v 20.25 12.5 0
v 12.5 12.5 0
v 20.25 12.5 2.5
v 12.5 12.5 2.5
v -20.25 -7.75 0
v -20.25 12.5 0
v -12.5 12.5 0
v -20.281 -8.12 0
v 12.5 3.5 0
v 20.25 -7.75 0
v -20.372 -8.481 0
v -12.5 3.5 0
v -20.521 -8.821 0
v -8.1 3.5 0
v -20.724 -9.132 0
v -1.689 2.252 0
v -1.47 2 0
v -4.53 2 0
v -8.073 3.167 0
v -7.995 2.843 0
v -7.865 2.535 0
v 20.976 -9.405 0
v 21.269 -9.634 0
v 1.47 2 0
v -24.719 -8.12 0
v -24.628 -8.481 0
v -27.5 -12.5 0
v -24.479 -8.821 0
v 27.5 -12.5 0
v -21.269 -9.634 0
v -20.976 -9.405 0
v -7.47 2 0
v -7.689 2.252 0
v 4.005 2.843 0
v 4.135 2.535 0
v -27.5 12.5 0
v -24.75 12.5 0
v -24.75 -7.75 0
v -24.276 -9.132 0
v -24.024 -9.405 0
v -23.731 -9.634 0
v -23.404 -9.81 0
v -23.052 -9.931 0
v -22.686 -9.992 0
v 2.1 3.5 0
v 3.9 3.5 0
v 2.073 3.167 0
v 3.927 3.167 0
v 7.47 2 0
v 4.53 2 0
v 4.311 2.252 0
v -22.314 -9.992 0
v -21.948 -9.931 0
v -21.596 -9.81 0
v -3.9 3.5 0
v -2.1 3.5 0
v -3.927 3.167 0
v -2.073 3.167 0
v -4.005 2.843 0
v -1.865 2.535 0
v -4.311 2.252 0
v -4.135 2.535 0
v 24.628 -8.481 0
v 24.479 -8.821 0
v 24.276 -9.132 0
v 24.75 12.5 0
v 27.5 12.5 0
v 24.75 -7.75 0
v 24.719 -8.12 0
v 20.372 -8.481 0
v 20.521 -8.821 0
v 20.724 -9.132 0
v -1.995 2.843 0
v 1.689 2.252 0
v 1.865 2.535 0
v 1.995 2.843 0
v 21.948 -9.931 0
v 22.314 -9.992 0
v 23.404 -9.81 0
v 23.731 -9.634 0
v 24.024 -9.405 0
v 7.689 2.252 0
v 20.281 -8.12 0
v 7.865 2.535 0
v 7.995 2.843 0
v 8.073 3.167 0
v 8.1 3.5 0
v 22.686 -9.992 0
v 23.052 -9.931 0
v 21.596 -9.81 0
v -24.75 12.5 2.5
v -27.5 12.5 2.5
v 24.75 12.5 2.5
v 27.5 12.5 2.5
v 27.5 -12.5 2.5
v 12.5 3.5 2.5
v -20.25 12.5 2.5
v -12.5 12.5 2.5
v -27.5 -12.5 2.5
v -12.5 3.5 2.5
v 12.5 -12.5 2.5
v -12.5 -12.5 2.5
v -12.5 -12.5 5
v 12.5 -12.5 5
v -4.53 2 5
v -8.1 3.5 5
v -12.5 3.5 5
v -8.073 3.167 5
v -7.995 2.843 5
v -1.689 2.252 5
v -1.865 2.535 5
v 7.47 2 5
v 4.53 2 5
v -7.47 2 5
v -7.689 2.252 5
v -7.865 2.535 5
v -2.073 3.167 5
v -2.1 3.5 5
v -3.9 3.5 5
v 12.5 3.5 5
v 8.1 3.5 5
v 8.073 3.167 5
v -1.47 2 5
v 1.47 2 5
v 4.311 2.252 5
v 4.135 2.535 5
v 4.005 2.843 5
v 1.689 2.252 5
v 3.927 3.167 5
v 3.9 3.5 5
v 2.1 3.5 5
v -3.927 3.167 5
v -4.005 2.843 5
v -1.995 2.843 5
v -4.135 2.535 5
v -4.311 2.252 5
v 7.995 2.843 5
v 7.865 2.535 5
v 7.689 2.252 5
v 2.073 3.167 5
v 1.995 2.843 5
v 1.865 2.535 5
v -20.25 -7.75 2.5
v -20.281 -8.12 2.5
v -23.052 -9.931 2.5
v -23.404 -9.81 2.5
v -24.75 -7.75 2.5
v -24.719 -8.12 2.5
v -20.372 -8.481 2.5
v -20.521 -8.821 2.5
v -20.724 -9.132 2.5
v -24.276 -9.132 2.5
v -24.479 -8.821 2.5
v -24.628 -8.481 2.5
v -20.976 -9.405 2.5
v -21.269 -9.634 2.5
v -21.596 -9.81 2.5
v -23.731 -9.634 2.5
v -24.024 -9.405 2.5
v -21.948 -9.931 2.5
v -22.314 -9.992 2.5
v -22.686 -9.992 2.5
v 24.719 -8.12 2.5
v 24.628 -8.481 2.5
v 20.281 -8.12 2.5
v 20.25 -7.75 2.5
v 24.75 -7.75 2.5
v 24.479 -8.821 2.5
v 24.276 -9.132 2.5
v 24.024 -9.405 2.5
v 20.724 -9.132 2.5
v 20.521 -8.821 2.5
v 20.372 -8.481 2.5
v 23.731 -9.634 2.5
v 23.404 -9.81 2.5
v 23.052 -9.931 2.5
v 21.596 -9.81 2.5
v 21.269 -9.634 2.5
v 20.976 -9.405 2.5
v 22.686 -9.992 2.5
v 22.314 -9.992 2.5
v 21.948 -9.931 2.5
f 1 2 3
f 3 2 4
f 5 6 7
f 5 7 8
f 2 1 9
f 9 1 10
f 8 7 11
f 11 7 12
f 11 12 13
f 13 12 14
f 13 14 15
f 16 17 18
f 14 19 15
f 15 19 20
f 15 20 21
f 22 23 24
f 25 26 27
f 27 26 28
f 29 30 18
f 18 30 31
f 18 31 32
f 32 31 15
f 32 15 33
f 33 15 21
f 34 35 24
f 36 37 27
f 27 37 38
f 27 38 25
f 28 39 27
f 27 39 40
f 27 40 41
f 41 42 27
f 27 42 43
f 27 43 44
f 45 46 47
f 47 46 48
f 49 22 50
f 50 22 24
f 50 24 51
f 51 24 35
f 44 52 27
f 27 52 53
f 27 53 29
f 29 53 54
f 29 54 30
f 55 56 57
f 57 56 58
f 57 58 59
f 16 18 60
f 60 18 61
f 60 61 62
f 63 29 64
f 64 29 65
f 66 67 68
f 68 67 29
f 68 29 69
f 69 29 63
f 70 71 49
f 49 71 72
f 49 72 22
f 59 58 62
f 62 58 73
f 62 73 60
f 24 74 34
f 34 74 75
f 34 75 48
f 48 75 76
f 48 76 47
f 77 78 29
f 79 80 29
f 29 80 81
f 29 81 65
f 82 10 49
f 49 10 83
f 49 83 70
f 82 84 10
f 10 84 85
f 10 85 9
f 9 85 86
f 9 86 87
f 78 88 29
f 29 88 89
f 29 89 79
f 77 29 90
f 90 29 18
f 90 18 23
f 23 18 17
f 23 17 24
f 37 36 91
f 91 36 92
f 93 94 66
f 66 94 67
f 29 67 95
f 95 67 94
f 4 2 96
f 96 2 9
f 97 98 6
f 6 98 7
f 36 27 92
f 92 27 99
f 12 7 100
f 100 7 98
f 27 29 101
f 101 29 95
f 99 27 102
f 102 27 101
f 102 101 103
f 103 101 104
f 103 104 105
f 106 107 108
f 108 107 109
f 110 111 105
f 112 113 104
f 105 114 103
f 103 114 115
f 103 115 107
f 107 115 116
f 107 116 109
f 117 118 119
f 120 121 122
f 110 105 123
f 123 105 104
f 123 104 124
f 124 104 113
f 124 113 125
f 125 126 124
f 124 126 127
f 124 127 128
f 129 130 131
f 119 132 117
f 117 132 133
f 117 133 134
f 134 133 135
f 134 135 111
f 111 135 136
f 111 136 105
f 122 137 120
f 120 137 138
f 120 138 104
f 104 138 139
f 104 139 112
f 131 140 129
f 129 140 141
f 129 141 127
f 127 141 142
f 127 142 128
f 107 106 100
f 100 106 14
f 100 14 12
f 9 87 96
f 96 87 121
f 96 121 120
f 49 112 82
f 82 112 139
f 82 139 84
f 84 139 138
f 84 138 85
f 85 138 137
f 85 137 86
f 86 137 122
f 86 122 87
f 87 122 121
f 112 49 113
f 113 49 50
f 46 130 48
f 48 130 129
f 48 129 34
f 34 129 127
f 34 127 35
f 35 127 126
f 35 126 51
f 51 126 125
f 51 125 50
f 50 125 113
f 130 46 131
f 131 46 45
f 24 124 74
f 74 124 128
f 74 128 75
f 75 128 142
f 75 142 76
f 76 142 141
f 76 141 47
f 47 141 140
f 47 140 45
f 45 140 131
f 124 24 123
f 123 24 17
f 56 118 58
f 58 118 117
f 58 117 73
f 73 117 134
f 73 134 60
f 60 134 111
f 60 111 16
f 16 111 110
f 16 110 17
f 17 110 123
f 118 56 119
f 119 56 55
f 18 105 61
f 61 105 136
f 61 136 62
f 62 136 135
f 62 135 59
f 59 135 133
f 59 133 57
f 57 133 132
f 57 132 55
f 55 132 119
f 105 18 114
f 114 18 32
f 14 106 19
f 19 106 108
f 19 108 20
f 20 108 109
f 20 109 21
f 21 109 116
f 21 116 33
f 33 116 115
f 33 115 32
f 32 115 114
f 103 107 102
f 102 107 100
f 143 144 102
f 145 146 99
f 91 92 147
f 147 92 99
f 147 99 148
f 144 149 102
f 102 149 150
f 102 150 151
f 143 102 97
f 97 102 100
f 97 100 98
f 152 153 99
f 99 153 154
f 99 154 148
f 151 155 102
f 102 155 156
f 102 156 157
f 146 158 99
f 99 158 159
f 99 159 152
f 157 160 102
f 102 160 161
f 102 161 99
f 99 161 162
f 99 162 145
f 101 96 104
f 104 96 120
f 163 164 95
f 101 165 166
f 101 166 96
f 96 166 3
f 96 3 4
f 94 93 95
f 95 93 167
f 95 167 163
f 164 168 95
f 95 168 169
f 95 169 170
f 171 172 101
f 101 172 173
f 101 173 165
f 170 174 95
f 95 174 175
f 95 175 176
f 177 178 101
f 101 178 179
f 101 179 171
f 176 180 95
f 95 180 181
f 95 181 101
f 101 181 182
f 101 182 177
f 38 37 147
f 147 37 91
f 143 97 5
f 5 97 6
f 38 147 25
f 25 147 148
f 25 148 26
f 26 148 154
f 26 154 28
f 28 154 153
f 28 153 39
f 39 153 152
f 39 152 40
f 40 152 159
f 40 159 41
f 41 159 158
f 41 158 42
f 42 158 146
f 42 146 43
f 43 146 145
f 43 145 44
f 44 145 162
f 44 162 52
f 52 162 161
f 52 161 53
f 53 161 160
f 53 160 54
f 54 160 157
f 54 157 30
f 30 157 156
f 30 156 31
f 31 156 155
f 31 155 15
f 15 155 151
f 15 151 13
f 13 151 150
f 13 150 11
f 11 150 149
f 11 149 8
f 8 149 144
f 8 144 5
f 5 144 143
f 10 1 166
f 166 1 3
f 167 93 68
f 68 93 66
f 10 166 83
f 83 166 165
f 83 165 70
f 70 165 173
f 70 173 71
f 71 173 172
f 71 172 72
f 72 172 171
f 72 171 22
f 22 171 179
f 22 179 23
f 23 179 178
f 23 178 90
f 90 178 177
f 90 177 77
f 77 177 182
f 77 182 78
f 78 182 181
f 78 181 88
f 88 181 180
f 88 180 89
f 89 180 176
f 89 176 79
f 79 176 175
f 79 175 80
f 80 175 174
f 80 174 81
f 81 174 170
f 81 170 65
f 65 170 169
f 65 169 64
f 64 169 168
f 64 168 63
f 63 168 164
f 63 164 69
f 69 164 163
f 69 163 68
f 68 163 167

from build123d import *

# Parameters (mm, degrees)
SKICA1_W                 = 55
SKICA1_H                 = 25
P_IDAT_VYSUNUT_M1_DEPTH  = 5
ODEBRAT_VYSUNUT_M1_DEPTH = 10
SKICA3_W                 = 15
SKICA3_H                 = 25
ODEBRAT_VYSUNUT_M2_DEPTH = 2.5
M4_D_RA_S_V_L_4_DEPTH    = 2.5


# Read off the part's stored shape, not the designer's step: M4 díra s vůlí4
with BuildPart() as part:
    # Skica1 → Přidat vysunutím1 (new body)
    with BuildSketch(Plane.XY):
        Rectangle(SKICA1_W, SKICA1_H)
    extrude(amount=P_IDAT_VYSUNUT_M1_DEPTH)

    # Skica2 → Odebrat vysunutím1 (cut)
    with BuildSketch(Plane.XY.offset(5)):
        with BuildLine():
            Line((-12.5, 3.5), (-8.1, 3.5))
            ThreePointArc((-8.1, 3.5), (-7.936021317, 2.6864759), (-7.469693846, 2))
            Line((-7.469693846, 2), (-4.530306154, 2))
            ThreePointArc((-4.530306154, 2), (-4.063978683, 2.6864759), (-3.9, 3.5))
            Line((-3.9, 3.5), (-2.1, 3.5))
            ThreePointArc((-2.1, 3.5), (-1.936021317, 2.6864759), (-1.469693846, 2))
            Line((-1.469693846, 2), (1.469693846, 2))
            ThreePointArc((1.469693846, 2), (1.936021317, 2.6864759), (2.1, 3.5))
            Line((2.1, 3.5), (3.9, 3.5))
            ThreePointArc((3.9, 3.5), (4.063978683, 2.6864759), (4.530306154, 2))
            Line((4.530306154, 2), (7.469693846, 2))
            ThreePointArc((7.469693846, 2), (7.936021317, 2.6864759), (8.1, 3.5))
            Line((8.1, 3.5), (12.5, 3.5))
            Line((12.5, 3.5), (12.5, 12.5))
            Line((12.5, 12.5), (-12.5, 12.5))
            Line((-12.5, 12.5), (-12.5, 3.5))
        make_face()
    extrude(amount=-ODEBRAT_VYSUNUT_M1_DEPTH, mode=Mode.SUBTRACT)

    # Skica3 → Odebrat vysunutím2 (cut)
    with BuildSketch(Plane.XY.offset(5)):
        with Locations((-20, 0)):
            Rectangle(SKICA3_W, SKICA3_H)
        with Locations((20, 0)):
            Rectangle(SKICA3_W, SKICA3_H)
    extrude(amount=-ODEBRAT_VYSUNUT_M2_DEPTH, mode=Mode.SUBTRACT)

    # M4 díra s vůlí4 outline → M4 díra s vůlí4 (cut)
    with BuildSketch(Plane.XY):
        with BuildLine():
            Line((-20.25, 12.5), (-24.75, 12.5))
            Line((-24.75, 12.5), (-24.75, -7.75))
            ThreePointArc((-24.75, -7.75), (-22.5, -10), (-20.25, -7.75))
            Line((-20.25, -7.75), (-20.25, 12.5))
        make_face()
        with BuildLine():
            Line((24.75, 12.5), (20.25, 12.5))
            Line((20.25, 12.5), (20.25, -7.75))
            ThreePointArc((20.25, -7.75), (22.5, -10), (24.75, -7.75))
            Line((24.75, -7.75), (24.75, 12.5))
        make_face()
    extrude(amount=M4_D_RA_S_V_L_4_DEPTH, mode=Mode.SUBTRACT)


solid = part.part
